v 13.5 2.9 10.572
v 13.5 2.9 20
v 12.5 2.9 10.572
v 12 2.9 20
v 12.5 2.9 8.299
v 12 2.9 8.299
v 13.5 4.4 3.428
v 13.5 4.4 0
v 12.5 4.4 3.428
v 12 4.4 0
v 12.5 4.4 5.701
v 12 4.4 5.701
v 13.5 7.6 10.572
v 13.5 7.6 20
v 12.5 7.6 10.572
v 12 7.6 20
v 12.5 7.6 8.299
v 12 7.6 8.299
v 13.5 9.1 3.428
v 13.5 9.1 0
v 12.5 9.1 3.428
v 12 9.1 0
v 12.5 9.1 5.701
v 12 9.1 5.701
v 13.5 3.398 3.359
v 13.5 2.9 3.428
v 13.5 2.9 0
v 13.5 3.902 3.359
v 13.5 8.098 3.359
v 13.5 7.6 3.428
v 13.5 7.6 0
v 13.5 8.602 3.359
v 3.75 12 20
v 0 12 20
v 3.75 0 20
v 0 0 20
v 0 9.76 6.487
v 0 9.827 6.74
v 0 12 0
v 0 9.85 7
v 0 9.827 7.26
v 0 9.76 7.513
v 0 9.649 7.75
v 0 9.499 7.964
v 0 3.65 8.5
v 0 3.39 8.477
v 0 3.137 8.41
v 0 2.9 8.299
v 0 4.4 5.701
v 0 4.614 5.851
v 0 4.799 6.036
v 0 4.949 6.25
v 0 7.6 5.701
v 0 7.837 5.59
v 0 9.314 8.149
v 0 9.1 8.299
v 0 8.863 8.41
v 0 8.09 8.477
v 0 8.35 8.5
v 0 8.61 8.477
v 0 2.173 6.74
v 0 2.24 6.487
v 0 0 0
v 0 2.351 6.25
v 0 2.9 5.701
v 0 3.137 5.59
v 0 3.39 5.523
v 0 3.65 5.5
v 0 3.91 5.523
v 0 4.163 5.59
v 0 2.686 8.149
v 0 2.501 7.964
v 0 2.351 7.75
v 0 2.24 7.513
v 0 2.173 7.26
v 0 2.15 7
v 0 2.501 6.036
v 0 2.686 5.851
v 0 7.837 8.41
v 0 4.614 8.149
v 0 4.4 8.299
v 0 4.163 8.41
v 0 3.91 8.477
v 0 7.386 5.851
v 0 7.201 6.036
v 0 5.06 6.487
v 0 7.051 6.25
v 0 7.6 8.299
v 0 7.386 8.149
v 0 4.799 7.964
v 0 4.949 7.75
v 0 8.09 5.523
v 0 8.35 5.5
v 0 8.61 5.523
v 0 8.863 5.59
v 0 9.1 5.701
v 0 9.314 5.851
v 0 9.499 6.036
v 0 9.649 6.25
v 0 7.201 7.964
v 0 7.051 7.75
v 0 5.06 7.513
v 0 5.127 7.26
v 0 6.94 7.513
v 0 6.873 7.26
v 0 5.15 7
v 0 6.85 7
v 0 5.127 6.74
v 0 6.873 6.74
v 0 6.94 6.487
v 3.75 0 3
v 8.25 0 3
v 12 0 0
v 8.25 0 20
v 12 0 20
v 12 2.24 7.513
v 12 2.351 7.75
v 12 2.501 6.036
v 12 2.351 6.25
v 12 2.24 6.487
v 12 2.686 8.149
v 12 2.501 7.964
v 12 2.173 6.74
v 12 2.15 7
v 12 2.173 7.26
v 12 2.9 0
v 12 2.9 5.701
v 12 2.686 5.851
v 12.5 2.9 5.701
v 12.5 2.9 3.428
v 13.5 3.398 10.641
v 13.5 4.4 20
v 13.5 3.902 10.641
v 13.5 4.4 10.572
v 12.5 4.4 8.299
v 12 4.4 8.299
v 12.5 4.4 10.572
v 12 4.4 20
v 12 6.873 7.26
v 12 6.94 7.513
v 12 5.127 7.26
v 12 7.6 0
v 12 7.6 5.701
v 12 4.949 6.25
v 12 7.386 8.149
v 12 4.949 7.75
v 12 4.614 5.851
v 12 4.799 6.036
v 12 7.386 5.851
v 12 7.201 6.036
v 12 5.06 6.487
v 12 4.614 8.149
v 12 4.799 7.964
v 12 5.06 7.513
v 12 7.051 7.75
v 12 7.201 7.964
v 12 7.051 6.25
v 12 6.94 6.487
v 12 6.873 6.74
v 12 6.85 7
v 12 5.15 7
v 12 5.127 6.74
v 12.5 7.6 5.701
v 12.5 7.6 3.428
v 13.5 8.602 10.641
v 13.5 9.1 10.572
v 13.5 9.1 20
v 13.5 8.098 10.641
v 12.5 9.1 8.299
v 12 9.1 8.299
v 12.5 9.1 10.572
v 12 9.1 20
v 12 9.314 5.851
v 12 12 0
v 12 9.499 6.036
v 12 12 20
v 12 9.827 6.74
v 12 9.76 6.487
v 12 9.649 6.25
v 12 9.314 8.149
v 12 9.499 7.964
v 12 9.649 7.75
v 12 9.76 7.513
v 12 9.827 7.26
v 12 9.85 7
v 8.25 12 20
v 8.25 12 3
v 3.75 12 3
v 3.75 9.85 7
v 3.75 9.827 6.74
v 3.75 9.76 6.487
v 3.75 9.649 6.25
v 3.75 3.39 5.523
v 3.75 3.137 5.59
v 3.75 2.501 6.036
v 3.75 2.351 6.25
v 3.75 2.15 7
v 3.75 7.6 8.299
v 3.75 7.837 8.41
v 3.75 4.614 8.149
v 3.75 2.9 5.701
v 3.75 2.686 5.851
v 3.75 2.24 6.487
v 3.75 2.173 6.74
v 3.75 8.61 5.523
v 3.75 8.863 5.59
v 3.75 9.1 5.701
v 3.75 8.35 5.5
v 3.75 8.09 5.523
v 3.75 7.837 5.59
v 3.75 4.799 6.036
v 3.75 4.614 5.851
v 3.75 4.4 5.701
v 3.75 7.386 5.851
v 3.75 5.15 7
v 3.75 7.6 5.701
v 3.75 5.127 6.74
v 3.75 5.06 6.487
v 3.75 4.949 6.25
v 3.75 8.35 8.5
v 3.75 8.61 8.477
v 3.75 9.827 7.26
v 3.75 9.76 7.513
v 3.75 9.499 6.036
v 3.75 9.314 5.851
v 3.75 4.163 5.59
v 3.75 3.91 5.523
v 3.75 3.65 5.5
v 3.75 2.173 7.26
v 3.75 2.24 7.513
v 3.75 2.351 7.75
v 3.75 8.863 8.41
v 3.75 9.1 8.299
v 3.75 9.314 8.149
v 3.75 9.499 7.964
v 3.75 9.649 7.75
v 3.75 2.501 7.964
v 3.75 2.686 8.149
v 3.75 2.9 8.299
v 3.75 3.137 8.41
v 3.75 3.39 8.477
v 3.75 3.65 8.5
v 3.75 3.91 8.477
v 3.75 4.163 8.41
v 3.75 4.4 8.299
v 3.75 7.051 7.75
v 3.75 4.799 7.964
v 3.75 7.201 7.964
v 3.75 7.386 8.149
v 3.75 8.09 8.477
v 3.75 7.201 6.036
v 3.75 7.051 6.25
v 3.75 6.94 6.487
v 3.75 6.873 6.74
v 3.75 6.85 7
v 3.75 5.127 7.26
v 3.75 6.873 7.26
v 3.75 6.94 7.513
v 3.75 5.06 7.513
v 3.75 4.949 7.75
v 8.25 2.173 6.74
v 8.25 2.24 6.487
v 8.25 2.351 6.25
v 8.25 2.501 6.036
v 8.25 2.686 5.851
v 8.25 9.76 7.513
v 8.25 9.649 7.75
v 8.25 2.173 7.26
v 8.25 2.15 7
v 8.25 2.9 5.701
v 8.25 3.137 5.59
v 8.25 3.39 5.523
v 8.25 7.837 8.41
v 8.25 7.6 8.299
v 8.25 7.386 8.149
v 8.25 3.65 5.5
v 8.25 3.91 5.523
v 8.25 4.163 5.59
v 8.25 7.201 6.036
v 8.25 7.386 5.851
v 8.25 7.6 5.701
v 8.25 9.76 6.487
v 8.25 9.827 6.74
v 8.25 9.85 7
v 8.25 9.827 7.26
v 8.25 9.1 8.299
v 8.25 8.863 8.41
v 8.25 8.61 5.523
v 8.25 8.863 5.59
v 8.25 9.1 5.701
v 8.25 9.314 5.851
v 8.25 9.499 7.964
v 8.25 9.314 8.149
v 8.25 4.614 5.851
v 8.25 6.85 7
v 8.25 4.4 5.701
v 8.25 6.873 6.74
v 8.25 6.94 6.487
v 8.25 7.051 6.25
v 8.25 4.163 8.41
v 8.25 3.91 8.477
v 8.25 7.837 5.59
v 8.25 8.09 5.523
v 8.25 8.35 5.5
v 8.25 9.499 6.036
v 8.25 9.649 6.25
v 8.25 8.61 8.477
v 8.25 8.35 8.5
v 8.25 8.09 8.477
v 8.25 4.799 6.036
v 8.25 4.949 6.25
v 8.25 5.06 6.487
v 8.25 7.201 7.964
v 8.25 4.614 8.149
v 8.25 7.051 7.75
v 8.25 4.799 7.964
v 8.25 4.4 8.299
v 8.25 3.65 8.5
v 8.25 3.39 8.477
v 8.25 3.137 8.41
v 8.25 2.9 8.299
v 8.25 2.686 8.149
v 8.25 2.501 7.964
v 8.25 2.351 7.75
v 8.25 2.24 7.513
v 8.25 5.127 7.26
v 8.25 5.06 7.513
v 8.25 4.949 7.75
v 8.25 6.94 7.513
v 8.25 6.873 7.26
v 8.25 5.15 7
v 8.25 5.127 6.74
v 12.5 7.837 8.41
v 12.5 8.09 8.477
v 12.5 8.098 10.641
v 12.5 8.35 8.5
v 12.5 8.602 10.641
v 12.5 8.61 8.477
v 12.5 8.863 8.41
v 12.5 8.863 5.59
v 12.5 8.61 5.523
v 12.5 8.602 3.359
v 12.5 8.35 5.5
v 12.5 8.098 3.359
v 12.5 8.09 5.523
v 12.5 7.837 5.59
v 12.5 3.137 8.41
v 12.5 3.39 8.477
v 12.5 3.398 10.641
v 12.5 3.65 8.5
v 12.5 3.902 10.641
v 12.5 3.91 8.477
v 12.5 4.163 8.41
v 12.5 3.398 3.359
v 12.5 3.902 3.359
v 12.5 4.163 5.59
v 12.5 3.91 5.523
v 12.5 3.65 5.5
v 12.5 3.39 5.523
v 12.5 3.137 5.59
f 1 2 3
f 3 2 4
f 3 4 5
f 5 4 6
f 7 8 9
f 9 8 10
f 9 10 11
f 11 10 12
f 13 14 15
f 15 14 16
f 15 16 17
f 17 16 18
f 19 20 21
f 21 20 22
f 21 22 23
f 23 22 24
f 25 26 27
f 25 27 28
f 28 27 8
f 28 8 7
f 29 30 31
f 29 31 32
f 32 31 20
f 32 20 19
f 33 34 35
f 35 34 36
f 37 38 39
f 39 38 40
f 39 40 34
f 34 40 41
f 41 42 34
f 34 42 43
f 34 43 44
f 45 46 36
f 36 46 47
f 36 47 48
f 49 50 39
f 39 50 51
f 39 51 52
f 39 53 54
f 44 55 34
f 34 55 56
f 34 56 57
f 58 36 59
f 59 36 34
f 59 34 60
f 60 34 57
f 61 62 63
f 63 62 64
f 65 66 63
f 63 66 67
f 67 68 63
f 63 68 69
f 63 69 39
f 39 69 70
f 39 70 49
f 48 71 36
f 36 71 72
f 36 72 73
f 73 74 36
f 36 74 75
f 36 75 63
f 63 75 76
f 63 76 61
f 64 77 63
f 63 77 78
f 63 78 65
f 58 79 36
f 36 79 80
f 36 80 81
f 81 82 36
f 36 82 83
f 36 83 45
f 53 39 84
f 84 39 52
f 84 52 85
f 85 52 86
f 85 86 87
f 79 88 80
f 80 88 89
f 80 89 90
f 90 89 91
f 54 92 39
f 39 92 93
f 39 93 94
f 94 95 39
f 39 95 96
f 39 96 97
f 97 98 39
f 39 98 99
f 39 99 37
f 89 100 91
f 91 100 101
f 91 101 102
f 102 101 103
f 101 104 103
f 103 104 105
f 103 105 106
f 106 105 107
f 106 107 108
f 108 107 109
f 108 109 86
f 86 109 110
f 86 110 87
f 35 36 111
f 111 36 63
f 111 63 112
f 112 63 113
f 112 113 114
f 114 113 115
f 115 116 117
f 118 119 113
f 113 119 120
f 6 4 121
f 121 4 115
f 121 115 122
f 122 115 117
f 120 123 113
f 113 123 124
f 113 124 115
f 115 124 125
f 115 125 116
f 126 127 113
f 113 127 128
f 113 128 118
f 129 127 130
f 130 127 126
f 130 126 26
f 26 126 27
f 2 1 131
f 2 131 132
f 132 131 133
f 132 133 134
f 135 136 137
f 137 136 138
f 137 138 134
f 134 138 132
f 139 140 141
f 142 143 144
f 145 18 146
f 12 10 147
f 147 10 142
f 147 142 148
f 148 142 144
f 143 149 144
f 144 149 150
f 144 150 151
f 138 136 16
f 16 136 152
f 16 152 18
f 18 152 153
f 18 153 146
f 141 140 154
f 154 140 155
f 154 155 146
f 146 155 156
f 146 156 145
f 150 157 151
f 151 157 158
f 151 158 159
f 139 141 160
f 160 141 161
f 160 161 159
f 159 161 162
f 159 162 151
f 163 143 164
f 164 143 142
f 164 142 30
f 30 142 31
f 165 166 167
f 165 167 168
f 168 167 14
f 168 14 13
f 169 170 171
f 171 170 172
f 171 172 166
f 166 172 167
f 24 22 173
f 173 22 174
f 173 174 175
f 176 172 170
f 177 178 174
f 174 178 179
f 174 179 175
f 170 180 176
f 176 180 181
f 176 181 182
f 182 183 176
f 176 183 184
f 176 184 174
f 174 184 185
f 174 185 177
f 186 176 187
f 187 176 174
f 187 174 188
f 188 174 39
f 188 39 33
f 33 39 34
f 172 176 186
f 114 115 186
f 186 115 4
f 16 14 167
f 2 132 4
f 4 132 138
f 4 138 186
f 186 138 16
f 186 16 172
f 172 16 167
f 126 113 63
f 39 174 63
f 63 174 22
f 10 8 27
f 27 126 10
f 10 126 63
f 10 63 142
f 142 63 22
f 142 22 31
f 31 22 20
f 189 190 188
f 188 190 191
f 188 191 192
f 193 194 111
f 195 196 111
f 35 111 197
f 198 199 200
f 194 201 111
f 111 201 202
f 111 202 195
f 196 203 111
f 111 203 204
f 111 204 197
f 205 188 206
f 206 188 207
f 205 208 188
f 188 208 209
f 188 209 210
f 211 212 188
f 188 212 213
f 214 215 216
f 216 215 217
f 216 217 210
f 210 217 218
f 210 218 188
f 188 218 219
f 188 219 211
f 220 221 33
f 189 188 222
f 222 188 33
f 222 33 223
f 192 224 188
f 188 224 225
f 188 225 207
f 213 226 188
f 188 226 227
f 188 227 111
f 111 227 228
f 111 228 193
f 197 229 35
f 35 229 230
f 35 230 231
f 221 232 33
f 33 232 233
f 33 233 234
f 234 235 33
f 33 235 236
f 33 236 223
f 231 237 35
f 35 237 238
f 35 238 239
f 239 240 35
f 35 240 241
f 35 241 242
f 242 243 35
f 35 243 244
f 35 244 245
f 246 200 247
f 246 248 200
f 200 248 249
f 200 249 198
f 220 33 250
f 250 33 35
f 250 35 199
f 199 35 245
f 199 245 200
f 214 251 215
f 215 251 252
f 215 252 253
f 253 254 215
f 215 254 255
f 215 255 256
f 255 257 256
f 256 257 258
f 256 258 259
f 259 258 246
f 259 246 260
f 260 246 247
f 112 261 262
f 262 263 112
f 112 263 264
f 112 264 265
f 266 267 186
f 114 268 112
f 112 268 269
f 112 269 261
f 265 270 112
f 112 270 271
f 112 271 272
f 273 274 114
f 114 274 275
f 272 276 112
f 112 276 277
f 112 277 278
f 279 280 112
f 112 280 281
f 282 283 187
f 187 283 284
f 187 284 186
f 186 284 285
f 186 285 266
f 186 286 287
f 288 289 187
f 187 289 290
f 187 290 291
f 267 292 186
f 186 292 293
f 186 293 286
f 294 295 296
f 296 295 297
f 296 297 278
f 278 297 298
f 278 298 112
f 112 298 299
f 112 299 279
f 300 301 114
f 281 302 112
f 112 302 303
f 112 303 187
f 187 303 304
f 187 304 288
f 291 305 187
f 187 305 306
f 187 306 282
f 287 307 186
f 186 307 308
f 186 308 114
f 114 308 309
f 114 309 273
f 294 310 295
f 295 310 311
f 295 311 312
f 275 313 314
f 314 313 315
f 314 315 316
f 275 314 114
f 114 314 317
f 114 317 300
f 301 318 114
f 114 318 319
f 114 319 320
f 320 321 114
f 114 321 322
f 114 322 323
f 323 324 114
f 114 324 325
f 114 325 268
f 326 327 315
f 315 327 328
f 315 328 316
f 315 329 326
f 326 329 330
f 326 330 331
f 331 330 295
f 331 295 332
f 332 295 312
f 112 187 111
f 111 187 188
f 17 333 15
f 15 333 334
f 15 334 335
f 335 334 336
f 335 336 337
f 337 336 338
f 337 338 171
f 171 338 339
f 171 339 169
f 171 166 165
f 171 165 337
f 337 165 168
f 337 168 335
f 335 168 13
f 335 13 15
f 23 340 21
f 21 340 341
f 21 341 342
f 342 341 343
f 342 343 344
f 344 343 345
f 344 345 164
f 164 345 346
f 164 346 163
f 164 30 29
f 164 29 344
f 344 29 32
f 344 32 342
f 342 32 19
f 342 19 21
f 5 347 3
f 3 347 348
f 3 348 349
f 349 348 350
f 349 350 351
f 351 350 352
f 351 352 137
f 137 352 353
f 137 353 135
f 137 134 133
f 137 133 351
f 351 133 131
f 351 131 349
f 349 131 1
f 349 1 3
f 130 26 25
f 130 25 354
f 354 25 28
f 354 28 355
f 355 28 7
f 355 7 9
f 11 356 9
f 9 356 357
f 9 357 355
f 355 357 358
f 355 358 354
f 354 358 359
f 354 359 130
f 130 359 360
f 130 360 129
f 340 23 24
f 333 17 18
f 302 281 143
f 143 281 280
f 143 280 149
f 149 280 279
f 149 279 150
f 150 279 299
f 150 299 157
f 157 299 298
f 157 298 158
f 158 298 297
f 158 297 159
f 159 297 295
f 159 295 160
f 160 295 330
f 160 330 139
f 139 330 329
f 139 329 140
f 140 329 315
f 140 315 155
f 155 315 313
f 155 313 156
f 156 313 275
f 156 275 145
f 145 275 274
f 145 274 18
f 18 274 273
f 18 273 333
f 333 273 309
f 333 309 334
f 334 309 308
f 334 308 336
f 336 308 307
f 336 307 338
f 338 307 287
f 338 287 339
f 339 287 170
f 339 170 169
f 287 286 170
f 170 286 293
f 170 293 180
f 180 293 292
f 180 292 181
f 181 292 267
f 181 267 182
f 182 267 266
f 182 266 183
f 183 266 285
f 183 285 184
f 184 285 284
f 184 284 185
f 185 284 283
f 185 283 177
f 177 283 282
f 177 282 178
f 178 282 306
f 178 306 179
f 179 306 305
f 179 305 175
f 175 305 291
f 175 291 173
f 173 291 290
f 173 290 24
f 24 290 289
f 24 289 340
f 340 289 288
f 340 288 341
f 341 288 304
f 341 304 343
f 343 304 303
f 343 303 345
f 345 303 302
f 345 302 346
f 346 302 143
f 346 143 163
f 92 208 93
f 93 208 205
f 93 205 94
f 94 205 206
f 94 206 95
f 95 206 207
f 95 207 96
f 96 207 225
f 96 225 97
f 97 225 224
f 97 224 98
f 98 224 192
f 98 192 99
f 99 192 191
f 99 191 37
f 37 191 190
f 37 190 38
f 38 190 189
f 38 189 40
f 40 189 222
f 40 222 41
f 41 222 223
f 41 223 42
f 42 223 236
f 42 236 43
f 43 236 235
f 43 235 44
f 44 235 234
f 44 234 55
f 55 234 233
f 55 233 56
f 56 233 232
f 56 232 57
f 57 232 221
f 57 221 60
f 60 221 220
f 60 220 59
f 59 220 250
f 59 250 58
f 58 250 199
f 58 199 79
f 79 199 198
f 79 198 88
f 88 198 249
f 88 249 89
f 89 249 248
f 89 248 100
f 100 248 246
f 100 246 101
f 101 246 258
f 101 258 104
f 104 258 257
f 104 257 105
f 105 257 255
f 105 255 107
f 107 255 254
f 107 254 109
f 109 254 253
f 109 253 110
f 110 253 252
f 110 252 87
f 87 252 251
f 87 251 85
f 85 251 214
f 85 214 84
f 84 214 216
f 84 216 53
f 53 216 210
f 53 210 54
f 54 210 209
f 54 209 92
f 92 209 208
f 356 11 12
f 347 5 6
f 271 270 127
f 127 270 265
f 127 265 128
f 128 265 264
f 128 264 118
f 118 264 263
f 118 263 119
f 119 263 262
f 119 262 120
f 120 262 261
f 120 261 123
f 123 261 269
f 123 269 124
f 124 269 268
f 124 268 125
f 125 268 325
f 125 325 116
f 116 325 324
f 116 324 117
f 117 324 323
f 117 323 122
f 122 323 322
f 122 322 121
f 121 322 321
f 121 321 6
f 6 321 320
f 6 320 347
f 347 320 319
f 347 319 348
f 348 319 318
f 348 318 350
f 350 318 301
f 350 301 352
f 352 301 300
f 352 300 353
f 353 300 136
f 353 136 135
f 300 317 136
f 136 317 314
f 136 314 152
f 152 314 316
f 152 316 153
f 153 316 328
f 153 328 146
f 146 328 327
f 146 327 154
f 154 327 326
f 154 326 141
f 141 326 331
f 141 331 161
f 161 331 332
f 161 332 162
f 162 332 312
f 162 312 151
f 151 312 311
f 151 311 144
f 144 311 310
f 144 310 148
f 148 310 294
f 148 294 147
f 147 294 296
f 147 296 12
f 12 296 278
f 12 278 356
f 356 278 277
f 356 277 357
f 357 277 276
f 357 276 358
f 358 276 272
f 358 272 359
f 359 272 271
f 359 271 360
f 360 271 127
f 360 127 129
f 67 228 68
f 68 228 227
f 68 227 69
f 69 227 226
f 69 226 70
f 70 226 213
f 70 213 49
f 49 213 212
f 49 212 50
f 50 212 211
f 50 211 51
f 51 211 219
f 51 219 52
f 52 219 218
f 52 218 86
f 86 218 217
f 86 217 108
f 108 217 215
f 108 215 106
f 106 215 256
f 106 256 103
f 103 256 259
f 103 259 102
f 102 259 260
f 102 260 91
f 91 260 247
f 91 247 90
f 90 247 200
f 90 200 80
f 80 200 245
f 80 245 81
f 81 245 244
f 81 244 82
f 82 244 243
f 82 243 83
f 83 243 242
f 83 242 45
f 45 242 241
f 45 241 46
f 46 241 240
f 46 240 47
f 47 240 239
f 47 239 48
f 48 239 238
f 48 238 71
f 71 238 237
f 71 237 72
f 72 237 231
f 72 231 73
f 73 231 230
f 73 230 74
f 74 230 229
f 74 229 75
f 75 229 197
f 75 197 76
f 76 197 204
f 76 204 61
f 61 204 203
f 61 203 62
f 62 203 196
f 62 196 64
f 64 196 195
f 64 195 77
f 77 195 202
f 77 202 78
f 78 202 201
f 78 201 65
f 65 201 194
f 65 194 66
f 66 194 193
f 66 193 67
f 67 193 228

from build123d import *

# Parameters (mm, degrees)
BOSS_EXTRUDE1_DEPTH = 20
SKETCH2_W           = 4.5
SKETCH2_H           = 12
CUT_EXTRUDE1_DEPTH  = 17
SKETCH3_R           = 1.5
CUT_EXTRUDE2_DEPTH  = 1
SKETCH3_3_R         = 1.5
CUT_EXTRUDE3_DEPTH  = 27.949025956


with BuildPart() as part:
    # Sketch1 → Boss-Extrude1 (new body)
    with BuildSketch(Plane.XY):
        Polygon((12, 9.1), (13.5, 9.1), (13.5, 7.6), (12, 7.6), (12, 4.4), (13.5, 4.4), (13.5, 2.9), (12, 2.9), (12, 0), (0, 0), (0, 12), (12, 12), align=None)
    extrude(amount=BOSS_EXTRUDE1_DEPTH)

    # Sketch2 → Cut-Extrude1 (cut)
    with BuildSketch(Plane.XY.offset(20)):
        with Locations((6, 6)):
            Rectangle(SKETCH2_W, SKETCH2_H)
    extrude(amount=-CUT_EXTRUDE1_DEPTH, mode=Mode.SUBTRACT)

    # Sketch3 → Cut-Extrude2 (cut)
    with BuildSketch(Plane(origin=(13.5, 0, 0), x_dir=(0, 0, -1), z_dir=(1, 0, 0))):
        with BuildLine():
            ThreePointArc((-9.792848009, 6), (-7, 0), (-4.207151991, 6))
            ThreePointArc((-4.207151991, 6), (-7, 12), (-9.792848009, 6))
        make_face()
        with Locations((-7, 8.35)):
            Circle(SKETCH3_R, mode=Mode.SUBTRACT)
        with Locations((-7, 3.65)):
            Circle(SKETCH3_R, mode=Mode.SUBTRACT)
    extrude(amount=-CUT_EXTRUDE2_DEPTH, mode=Mode.SUBTRACT)

    # Sketch3<3> → Cut-Extrude3 (cut, through all)
    with BuildSketch(Plane(origin=(13.5, 0, 0), x_dir=(0, 0, -1), z_dir=(1, 0, 0))):
        with Locations((-7, 8.35)):
            Circle(SKETCH3_3_R)
        with Locations((-7, 3.65)):
            Circle(SKETCH3_3_R)
    extrude(amount=-CUT_EXTRUDE3_DEPTH, mode=Mode.SUBTRACT)


solid = part.part
